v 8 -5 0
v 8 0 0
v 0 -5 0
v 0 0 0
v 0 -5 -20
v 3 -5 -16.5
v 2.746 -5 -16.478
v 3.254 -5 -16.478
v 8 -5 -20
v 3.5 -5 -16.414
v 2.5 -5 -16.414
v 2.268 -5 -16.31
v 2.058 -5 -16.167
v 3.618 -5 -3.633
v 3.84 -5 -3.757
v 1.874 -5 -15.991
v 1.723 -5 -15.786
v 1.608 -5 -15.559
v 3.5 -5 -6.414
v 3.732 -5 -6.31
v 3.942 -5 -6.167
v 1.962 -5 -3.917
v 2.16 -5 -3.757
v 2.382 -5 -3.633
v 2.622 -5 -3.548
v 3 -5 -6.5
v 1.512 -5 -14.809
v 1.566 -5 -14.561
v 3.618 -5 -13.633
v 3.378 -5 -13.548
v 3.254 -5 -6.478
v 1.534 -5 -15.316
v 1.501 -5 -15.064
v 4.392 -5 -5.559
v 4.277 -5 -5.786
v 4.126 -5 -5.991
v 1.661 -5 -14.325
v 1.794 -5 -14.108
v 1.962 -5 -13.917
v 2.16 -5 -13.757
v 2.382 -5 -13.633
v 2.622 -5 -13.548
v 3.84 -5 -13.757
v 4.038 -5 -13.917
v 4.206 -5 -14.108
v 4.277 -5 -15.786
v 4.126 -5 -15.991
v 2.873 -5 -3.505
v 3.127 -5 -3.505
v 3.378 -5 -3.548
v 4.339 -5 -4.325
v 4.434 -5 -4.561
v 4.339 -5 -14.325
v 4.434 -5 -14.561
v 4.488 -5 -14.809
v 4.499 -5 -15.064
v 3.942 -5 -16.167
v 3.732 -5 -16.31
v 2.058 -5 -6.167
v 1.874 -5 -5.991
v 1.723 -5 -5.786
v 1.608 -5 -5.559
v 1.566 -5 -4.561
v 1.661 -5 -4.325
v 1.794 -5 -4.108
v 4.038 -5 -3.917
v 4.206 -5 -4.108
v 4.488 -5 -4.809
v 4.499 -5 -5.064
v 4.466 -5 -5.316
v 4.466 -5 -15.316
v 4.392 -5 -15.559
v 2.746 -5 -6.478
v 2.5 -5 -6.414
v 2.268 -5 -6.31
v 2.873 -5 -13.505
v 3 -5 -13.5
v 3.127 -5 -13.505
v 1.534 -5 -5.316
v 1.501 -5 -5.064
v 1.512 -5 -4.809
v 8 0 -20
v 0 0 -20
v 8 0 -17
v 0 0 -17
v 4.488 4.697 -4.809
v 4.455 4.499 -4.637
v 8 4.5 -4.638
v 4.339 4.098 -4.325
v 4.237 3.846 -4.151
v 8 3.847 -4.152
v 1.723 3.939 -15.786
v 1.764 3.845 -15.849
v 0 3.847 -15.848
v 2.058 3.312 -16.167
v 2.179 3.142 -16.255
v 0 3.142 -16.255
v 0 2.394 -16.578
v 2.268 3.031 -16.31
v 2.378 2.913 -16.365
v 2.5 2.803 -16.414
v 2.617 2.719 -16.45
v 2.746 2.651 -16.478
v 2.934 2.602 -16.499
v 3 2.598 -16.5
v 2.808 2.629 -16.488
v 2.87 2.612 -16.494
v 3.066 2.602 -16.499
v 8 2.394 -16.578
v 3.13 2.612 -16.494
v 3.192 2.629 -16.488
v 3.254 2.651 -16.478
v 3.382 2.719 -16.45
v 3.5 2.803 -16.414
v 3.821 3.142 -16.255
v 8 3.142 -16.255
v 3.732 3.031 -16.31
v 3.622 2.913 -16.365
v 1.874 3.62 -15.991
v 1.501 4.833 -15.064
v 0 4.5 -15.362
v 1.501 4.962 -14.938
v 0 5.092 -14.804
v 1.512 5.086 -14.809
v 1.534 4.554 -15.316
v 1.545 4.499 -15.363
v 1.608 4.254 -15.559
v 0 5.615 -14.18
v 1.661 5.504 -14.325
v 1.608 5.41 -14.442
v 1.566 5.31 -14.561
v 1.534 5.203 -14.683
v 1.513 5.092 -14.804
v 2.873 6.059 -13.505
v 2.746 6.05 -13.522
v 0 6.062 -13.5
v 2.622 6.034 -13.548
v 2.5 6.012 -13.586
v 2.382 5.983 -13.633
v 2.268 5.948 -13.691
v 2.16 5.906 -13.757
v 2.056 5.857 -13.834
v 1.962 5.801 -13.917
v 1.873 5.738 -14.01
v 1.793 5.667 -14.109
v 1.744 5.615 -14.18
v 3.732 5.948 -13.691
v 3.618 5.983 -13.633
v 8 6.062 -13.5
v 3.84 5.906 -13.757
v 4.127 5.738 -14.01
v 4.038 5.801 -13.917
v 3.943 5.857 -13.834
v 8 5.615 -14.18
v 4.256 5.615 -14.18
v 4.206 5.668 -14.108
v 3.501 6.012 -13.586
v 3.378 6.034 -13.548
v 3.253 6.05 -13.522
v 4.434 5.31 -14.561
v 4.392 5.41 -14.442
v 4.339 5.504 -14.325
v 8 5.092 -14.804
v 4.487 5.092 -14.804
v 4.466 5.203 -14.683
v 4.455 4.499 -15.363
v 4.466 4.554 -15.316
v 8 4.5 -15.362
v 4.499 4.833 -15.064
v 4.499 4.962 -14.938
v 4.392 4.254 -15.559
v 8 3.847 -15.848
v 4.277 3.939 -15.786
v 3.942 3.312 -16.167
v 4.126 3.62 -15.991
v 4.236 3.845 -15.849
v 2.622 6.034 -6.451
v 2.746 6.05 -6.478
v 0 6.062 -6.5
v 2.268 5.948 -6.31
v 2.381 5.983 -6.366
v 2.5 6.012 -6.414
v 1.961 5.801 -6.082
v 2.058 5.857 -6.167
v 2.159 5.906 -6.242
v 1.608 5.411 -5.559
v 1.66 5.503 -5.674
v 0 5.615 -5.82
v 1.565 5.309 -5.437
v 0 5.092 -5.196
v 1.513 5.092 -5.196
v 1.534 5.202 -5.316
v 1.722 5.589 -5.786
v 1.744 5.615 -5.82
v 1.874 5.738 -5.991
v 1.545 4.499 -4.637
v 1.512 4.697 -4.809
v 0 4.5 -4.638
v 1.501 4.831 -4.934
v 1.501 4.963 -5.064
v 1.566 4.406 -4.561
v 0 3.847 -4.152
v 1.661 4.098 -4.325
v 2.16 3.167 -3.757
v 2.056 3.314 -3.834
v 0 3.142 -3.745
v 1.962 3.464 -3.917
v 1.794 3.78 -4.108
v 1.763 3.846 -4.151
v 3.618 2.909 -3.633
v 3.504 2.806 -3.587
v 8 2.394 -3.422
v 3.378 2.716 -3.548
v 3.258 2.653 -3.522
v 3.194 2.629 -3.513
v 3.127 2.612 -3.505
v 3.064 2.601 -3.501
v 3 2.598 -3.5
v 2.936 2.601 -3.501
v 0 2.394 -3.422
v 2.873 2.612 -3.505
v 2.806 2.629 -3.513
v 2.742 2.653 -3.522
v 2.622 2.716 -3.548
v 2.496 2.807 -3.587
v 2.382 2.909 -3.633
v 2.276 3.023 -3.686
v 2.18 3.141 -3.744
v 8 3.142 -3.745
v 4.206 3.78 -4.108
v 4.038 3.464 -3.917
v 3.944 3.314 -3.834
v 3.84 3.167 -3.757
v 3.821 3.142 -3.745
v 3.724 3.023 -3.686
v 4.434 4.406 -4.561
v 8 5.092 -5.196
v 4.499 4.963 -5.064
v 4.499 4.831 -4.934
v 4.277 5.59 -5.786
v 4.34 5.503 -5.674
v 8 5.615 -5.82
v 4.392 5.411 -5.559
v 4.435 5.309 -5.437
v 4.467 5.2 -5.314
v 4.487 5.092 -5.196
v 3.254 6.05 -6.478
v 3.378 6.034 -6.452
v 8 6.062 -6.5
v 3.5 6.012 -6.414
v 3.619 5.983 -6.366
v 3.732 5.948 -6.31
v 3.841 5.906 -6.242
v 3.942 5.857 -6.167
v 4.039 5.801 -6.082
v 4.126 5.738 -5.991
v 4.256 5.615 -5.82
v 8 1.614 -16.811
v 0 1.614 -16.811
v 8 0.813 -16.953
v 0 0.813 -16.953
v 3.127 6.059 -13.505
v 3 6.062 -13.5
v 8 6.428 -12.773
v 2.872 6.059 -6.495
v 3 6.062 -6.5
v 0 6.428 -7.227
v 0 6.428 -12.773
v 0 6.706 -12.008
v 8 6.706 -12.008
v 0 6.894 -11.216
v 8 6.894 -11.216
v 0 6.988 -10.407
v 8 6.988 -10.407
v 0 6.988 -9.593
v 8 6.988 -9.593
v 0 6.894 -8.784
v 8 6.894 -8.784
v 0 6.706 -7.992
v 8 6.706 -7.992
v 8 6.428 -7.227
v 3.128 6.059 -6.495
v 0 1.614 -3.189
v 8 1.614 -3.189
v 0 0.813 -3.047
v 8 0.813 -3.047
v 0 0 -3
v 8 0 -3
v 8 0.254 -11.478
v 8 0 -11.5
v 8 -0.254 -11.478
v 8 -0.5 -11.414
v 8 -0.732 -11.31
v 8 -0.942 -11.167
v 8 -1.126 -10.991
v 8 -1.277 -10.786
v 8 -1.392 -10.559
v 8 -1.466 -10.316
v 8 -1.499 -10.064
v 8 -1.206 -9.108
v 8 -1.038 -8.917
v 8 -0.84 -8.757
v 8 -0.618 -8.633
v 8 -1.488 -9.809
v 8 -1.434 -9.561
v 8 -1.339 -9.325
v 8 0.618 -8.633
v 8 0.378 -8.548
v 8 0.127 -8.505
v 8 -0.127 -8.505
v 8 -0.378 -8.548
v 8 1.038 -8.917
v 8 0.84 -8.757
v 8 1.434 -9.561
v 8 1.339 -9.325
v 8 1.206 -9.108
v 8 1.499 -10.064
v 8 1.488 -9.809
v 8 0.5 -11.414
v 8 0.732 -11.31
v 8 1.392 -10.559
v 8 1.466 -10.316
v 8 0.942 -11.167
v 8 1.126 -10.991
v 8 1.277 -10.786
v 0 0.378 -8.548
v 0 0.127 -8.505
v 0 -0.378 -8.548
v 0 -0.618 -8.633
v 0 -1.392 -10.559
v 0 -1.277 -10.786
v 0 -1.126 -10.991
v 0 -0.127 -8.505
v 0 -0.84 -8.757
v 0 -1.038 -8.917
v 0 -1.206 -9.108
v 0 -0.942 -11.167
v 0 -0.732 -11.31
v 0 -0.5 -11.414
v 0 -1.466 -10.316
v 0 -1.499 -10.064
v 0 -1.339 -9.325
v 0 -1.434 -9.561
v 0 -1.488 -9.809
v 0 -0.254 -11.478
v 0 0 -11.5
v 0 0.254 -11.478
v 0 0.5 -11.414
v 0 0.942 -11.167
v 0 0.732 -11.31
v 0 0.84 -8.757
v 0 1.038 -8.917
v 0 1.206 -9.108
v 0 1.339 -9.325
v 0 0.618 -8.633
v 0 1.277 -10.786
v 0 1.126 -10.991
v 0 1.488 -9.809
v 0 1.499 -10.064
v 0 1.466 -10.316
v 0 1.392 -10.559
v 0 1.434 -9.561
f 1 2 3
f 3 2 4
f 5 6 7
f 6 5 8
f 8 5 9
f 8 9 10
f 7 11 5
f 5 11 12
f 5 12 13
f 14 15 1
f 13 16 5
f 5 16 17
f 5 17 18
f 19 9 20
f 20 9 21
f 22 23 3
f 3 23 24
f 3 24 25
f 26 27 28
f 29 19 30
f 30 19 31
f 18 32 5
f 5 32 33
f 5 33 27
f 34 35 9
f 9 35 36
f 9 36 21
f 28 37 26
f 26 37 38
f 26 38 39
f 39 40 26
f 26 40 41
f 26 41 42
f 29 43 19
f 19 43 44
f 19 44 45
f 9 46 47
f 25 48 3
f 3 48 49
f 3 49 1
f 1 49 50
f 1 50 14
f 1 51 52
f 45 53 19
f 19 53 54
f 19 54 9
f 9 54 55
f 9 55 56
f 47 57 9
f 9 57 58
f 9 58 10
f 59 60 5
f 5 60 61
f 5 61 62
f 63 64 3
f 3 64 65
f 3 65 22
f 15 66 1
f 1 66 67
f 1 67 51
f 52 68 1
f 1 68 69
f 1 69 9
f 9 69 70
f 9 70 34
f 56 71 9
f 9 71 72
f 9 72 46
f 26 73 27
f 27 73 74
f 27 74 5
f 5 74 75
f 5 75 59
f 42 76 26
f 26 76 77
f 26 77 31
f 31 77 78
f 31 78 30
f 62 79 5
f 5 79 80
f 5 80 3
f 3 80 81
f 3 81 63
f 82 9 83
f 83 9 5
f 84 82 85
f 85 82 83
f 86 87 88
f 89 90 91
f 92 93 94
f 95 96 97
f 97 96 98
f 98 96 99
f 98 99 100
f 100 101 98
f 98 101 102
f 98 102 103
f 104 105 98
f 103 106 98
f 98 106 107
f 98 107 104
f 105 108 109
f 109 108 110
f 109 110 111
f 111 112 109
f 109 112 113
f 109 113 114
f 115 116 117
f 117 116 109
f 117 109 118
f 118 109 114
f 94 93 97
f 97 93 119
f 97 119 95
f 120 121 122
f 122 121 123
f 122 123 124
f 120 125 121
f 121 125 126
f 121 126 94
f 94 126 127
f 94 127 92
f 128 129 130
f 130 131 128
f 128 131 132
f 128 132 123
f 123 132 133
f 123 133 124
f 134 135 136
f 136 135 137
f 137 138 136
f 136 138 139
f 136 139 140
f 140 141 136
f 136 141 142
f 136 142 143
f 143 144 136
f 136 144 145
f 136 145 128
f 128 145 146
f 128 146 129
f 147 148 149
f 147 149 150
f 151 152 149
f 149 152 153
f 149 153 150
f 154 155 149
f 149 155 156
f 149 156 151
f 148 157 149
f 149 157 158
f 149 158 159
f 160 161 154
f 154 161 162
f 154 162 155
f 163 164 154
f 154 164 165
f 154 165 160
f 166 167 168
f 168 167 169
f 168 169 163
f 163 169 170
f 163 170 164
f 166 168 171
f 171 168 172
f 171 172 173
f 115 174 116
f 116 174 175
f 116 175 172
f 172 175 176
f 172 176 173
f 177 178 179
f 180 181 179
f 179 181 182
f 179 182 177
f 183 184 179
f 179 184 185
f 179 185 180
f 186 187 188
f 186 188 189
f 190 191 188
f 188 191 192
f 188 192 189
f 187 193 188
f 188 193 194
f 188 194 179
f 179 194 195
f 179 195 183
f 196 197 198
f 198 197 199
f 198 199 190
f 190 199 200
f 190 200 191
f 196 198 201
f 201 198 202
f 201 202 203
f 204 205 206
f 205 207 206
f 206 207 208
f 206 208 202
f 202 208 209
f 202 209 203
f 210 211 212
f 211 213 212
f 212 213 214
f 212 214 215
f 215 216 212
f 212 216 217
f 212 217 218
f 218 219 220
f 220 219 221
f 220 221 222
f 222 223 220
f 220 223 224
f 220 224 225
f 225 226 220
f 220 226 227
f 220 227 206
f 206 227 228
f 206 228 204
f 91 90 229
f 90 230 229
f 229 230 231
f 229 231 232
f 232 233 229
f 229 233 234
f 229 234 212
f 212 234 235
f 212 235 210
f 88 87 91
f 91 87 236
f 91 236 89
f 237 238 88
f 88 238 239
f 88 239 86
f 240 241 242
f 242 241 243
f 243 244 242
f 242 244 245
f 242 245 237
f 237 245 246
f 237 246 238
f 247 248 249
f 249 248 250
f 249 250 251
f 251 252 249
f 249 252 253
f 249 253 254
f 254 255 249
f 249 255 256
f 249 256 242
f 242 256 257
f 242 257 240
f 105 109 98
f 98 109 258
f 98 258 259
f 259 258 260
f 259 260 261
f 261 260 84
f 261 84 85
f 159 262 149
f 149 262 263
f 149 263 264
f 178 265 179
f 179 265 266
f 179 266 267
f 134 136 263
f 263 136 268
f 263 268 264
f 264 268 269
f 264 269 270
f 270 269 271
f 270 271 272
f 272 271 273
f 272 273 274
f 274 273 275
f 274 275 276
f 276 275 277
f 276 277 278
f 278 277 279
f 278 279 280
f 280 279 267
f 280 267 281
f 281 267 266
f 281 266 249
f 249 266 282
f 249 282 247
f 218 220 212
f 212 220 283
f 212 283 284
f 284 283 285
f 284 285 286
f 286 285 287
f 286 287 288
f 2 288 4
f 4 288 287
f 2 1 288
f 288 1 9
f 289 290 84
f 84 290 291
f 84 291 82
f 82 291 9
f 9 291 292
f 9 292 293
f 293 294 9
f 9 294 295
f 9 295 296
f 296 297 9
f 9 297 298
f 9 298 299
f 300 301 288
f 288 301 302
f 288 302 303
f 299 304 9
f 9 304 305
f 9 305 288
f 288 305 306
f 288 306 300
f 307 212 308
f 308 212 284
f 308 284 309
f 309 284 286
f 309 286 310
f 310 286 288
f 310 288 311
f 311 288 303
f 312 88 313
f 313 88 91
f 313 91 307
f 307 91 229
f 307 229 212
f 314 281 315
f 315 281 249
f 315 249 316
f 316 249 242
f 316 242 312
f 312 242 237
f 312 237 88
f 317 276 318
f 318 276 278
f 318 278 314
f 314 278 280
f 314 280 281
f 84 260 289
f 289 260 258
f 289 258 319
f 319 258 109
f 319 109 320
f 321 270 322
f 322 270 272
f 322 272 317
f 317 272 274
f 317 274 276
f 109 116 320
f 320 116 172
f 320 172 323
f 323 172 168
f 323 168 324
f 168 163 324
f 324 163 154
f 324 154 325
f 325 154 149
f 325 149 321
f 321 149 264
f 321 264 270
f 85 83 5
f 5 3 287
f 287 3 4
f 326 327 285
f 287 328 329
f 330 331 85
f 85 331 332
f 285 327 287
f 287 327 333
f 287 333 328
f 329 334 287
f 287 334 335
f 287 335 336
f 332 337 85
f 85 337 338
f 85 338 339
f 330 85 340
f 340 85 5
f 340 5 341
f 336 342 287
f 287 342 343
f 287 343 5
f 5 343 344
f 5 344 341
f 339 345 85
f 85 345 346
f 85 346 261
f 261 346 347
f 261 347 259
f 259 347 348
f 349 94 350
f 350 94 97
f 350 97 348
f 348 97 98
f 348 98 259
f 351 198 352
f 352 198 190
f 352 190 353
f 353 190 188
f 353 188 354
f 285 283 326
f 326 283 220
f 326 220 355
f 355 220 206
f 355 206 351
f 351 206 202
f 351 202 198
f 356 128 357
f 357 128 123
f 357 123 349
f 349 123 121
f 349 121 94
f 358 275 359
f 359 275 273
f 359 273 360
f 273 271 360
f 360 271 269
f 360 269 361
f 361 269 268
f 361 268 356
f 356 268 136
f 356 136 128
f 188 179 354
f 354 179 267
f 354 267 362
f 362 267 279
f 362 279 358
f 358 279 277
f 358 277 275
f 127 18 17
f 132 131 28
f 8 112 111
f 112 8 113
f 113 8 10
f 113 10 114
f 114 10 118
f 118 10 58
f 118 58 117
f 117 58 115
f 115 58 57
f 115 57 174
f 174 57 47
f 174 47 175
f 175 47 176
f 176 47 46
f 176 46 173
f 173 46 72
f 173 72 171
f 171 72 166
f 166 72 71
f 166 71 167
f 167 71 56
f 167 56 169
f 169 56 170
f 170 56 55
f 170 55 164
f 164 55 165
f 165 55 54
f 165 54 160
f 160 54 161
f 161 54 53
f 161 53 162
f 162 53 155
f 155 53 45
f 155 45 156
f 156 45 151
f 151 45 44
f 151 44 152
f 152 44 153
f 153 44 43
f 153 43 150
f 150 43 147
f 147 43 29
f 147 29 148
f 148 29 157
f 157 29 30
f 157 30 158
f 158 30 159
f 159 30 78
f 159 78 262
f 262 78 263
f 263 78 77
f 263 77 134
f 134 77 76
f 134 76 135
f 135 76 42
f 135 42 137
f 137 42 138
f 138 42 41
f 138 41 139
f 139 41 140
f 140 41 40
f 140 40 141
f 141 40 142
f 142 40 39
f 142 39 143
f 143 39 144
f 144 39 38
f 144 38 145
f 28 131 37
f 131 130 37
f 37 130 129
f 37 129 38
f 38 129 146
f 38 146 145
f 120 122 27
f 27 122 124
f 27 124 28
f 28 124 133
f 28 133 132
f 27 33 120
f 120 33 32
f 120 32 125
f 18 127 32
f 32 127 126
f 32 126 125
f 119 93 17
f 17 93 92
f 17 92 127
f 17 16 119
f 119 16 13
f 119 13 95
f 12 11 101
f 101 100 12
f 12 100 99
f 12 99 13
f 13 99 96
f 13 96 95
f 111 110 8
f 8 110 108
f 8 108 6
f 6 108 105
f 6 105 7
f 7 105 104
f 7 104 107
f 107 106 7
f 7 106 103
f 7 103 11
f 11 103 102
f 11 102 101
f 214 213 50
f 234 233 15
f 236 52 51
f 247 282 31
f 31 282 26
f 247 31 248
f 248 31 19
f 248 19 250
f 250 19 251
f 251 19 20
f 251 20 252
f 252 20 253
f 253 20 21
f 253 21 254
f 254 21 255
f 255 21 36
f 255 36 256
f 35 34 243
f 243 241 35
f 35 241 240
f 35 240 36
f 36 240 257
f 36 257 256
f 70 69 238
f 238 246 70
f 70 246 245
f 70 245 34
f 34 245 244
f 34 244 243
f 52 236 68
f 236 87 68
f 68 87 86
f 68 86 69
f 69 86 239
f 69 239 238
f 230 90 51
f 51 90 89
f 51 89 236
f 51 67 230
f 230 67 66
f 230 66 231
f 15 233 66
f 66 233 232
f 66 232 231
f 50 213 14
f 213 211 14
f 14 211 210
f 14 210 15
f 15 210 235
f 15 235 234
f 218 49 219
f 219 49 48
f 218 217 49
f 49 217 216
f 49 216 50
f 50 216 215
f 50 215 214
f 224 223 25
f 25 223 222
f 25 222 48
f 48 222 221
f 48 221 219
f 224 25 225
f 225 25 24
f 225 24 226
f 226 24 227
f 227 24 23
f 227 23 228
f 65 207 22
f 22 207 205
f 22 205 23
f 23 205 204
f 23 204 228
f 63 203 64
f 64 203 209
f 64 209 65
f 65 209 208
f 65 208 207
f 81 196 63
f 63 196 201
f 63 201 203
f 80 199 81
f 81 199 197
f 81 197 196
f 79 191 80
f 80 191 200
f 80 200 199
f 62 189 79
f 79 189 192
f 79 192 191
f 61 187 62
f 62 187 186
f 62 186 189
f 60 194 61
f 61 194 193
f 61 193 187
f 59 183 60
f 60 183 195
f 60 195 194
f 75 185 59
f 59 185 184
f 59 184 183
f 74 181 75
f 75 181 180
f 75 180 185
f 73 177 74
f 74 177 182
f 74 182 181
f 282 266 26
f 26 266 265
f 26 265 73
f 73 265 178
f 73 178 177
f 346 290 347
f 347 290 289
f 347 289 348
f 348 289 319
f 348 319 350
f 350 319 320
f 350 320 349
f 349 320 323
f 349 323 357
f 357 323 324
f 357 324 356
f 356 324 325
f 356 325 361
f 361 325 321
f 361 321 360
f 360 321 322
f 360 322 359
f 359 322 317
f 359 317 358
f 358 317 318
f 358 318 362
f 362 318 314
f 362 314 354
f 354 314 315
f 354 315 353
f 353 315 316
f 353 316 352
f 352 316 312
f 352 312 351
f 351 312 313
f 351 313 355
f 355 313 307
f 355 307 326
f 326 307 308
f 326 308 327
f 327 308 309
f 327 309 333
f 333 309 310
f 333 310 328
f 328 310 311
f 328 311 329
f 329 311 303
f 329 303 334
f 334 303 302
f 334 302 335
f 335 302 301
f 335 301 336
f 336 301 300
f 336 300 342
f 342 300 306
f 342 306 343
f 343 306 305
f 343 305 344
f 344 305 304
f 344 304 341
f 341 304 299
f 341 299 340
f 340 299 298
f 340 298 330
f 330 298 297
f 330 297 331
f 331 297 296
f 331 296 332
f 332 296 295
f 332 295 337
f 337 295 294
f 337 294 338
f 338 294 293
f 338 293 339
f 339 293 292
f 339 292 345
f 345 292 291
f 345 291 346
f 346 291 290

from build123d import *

# Parameters (mm, degrees)
BOSS_EXTRUDE1_DEPTH = 8
SKETCH3_R           = 1.5
CUT_EXTRUDE1_DEPTH  = 15
SKETCH4_R           = 1.5
CUT_EXTRUDE2_DEPTH  = 10


with BuildPart() as part:
    # Sketch1 → Boss-Extrude1 (new body)
    with BuildSketch(Plane(origin=(0, 0, 0), x_dir=(0, 0, -1), z_dir=(1, 0, 0))):
        with BuildLine():
            Line((17, 0), (20, 0))
            Line((20, 0), (20, -5))
            Line((20, -5), (0, -5))
            Line((0, -5), (0, 0))
            Line((0, 0), (3, 0))
            ThreePointArc((3, 0), (10, 7), (17, 0))
        make_face()
    extrude(amount=BOSS_EXTRUDE1_DEPTH)

    # Sketch3 → Cut-Extrude1 (cut)
    with BuildSketch(Plane.XZ.offset(5)):
        with Locations(Location((3, -5, 0), (0, 0, 270))):
            Circle(SKETCH3_R)
        with Locations(Location((3, -15, 0), (0, 0, 270))):
            Circle(SKETCH3_R)
    extrude(amount=-CUT_EXTRUDE1_DEPTH, mode=Mode.SUBTRACT)

    # Sketch4 → Cut-Extrude2 (cut)
    with BuildSketch(Plane(origin=(8, 0, 0), x_dir=(0, 0, -1), z_dir=(1, 0, 0))):
        with Locations((10, 0)):
            Circle(SKETCH4_R)
    extrude(amount=-CUT_EXTRUDE2_DEPTH, mode=Mode.SUBTRACT)


solid = part.part
